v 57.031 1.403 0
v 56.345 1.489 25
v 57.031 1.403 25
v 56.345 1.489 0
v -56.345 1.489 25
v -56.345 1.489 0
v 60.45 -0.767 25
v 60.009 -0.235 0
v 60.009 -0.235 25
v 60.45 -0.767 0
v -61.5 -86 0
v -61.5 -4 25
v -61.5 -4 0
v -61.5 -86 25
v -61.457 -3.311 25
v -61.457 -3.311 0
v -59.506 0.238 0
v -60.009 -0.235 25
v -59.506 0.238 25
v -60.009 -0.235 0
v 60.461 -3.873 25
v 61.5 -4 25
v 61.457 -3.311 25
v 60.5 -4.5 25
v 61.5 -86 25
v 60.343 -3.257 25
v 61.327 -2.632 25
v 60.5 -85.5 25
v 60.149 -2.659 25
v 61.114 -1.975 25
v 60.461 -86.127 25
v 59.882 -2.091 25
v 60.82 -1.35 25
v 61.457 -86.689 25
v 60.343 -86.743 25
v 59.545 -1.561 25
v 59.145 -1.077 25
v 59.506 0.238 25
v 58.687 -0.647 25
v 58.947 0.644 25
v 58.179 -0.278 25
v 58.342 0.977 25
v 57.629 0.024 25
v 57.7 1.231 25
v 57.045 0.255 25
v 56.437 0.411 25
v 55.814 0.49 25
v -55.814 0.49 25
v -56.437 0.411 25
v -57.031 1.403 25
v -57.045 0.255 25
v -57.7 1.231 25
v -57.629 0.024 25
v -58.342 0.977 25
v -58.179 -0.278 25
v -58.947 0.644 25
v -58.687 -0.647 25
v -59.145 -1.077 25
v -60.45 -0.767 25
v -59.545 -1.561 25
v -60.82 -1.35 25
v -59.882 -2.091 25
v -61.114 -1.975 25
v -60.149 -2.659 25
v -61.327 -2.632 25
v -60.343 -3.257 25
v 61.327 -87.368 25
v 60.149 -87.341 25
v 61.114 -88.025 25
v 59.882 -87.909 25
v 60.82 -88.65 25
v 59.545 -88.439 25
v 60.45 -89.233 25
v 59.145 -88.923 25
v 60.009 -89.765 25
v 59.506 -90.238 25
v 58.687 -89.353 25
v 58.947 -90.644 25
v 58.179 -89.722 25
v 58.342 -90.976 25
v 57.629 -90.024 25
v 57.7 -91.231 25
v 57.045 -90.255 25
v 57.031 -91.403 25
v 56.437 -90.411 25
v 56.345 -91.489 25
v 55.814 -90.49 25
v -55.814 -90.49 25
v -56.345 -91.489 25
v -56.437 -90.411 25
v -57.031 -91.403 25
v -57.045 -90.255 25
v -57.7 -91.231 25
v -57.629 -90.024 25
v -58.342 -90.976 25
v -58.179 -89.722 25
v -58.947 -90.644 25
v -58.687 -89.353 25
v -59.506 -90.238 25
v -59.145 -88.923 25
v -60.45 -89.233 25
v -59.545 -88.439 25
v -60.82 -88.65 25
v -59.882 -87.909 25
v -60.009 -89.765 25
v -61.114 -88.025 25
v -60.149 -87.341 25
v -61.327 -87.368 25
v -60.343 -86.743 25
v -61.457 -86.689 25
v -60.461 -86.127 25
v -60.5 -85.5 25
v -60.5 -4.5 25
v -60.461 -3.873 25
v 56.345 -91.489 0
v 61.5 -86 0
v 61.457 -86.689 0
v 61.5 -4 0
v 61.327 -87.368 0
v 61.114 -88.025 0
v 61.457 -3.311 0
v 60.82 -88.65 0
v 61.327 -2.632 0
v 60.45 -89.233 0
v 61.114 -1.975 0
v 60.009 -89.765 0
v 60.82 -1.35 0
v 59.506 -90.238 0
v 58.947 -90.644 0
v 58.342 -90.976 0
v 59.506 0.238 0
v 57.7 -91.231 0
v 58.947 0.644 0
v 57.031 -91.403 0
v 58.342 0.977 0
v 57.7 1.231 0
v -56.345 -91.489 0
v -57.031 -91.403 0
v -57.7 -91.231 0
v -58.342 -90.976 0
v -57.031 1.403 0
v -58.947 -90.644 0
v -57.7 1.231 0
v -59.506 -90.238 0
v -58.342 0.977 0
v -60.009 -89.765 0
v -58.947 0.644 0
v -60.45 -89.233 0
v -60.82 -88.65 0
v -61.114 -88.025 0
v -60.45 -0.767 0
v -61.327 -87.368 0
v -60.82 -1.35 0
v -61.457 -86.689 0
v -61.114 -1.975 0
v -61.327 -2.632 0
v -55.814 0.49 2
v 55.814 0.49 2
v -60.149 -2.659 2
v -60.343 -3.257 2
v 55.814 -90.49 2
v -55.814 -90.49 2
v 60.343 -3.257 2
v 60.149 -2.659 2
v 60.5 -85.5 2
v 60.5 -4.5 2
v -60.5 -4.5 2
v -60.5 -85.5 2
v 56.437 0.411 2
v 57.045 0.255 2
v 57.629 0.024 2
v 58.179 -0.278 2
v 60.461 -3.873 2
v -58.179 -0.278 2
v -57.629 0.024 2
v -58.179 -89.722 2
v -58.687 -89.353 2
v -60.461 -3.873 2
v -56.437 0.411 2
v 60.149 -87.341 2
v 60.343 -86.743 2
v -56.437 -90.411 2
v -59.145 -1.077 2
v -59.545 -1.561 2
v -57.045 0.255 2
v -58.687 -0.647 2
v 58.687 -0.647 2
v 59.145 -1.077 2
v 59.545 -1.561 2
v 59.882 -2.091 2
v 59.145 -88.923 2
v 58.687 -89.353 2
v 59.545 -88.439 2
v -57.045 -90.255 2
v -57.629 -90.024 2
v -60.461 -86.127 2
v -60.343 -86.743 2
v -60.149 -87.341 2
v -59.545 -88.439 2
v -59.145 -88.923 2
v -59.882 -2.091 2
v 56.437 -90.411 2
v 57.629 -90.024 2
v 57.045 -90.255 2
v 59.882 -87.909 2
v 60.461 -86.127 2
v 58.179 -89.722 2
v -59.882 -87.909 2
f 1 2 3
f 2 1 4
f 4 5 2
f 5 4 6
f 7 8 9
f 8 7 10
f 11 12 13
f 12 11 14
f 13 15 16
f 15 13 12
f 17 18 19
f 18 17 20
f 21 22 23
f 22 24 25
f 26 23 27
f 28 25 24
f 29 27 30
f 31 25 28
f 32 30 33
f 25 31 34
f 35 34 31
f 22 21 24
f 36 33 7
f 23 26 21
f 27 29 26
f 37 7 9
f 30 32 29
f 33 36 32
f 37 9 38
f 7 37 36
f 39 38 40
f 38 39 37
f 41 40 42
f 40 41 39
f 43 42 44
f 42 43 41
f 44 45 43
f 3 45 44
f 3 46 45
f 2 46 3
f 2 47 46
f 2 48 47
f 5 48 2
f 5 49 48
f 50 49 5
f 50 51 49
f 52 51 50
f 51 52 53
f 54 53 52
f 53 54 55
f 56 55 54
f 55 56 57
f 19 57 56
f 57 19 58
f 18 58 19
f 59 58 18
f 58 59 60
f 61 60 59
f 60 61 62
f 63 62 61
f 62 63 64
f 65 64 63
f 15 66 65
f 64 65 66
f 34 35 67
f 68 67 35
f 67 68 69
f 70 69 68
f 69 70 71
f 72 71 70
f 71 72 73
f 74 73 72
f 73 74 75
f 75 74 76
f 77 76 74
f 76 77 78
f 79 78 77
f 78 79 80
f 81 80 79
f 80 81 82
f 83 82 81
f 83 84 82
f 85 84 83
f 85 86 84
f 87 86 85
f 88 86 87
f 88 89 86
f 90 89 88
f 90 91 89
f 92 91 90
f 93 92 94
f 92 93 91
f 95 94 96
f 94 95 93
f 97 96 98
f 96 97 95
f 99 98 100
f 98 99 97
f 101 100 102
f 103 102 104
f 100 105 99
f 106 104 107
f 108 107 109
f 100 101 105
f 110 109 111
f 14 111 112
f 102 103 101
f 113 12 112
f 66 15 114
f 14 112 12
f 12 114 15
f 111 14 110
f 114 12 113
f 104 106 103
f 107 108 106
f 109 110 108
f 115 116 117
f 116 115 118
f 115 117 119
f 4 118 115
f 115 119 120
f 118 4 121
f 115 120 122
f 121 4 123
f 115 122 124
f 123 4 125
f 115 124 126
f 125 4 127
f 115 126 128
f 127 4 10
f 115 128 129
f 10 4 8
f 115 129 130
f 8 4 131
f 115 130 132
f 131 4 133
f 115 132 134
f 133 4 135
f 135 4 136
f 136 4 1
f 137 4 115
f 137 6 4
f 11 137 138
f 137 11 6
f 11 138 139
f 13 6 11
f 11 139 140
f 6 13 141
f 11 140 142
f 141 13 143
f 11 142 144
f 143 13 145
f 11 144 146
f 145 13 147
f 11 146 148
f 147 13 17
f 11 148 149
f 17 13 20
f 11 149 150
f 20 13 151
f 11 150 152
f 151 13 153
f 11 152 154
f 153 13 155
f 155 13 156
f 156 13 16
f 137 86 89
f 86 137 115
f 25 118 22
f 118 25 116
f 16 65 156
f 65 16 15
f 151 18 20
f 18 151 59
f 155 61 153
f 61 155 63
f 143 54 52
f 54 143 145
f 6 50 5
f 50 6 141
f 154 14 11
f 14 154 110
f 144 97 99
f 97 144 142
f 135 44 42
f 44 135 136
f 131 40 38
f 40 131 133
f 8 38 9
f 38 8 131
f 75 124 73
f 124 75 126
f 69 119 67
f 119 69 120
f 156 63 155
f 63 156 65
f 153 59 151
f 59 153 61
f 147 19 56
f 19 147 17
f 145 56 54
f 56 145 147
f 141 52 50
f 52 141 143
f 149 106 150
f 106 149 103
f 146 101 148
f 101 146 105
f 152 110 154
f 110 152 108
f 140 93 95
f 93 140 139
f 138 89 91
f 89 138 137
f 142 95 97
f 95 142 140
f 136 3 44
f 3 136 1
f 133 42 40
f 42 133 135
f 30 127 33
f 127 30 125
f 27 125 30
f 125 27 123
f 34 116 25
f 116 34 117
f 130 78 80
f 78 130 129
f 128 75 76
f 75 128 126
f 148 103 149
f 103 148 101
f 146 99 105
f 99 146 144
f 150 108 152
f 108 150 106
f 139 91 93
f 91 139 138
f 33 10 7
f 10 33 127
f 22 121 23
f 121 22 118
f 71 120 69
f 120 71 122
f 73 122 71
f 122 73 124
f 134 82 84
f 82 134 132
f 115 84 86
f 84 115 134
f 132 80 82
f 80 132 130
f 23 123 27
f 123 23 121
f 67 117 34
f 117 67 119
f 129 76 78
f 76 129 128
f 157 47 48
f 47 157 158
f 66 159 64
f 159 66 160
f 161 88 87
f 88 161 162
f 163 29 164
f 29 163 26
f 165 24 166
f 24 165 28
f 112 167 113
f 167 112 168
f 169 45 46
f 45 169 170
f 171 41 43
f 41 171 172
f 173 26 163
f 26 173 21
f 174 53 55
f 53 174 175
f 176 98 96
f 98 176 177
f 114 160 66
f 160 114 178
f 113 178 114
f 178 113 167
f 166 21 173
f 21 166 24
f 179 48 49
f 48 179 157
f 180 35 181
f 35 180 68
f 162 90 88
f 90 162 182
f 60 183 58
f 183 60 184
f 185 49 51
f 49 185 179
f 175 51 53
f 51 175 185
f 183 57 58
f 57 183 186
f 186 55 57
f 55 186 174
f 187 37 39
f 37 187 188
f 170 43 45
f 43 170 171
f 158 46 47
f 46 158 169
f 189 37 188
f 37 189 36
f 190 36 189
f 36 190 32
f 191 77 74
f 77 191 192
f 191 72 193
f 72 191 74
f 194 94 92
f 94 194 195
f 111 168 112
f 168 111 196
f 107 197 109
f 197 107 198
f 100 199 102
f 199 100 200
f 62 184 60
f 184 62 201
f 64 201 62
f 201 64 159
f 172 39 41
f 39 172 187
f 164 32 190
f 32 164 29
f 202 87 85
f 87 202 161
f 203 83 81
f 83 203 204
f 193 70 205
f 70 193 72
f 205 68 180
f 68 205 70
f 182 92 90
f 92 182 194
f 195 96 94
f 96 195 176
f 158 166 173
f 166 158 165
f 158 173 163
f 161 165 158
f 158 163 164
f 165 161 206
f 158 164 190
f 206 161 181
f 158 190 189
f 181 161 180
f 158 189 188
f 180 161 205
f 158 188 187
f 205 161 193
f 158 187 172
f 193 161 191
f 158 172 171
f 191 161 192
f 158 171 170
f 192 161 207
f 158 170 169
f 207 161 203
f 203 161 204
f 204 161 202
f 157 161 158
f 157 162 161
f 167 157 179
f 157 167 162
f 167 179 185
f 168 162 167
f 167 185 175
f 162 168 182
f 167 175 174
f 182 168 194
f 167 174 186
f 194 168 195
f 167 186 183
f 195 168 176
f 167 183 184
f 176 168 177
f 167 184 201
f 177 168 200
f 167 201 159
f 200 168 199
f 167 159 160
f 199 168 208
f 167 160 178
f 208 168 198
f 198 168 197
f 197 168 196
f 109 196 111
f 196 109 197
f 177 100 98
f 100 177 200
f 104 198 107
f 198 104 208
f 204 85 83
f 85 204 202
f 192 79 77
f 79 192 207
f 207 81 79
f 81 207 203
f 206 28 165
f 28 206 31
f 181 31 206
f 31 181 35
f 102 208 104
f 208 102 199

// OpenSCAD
$fn = 50;


difference() {
	union() {
		translate(v = [0, -45.0000000000, 0]) {
			hull() {
				translate(v = [-56.0000000000, 41.0000000000, 0]) {
					cylinder(h = 25, r = 5.5000000000);
				}
				translate(v = [56.0000000000, 41.0000000000, 0]) {
					cylinder(h = 25, r = 5.5000000000);
				}
				translate(v = [-56.0000000000, -41.0000000000, 0]) {
					cylinder(h = 25, r = 5.5000000000);
				}
				translate(v = [56.0000000000, -41.0000000000, 0]) {
					cylinder(h = 25, r = 5.5000000000);
				}
			}
		}
	}
	union() {
		translate(v = [0, -45.0000000000, 2]) {
			hull() {
				translate(v = [-55.5000000000, 40.5000000000, 0]) {
					cylinder(h = 50, r = 5);
				}
				translate(v = [55.5000000000, 40.5000000000, 0]) {
					cylinder(h = 50, r = 5);
				}
				translate(v = [-55.5000000000, -40.5000000000, 0]) {
					cylinder(h = 50, r = 5);
				}
				translate(v = [55.5000000000, -40.5000000000, 0]) {
					cylinder(h = 50, r = 5);
				}
			}
		}
	}
}
